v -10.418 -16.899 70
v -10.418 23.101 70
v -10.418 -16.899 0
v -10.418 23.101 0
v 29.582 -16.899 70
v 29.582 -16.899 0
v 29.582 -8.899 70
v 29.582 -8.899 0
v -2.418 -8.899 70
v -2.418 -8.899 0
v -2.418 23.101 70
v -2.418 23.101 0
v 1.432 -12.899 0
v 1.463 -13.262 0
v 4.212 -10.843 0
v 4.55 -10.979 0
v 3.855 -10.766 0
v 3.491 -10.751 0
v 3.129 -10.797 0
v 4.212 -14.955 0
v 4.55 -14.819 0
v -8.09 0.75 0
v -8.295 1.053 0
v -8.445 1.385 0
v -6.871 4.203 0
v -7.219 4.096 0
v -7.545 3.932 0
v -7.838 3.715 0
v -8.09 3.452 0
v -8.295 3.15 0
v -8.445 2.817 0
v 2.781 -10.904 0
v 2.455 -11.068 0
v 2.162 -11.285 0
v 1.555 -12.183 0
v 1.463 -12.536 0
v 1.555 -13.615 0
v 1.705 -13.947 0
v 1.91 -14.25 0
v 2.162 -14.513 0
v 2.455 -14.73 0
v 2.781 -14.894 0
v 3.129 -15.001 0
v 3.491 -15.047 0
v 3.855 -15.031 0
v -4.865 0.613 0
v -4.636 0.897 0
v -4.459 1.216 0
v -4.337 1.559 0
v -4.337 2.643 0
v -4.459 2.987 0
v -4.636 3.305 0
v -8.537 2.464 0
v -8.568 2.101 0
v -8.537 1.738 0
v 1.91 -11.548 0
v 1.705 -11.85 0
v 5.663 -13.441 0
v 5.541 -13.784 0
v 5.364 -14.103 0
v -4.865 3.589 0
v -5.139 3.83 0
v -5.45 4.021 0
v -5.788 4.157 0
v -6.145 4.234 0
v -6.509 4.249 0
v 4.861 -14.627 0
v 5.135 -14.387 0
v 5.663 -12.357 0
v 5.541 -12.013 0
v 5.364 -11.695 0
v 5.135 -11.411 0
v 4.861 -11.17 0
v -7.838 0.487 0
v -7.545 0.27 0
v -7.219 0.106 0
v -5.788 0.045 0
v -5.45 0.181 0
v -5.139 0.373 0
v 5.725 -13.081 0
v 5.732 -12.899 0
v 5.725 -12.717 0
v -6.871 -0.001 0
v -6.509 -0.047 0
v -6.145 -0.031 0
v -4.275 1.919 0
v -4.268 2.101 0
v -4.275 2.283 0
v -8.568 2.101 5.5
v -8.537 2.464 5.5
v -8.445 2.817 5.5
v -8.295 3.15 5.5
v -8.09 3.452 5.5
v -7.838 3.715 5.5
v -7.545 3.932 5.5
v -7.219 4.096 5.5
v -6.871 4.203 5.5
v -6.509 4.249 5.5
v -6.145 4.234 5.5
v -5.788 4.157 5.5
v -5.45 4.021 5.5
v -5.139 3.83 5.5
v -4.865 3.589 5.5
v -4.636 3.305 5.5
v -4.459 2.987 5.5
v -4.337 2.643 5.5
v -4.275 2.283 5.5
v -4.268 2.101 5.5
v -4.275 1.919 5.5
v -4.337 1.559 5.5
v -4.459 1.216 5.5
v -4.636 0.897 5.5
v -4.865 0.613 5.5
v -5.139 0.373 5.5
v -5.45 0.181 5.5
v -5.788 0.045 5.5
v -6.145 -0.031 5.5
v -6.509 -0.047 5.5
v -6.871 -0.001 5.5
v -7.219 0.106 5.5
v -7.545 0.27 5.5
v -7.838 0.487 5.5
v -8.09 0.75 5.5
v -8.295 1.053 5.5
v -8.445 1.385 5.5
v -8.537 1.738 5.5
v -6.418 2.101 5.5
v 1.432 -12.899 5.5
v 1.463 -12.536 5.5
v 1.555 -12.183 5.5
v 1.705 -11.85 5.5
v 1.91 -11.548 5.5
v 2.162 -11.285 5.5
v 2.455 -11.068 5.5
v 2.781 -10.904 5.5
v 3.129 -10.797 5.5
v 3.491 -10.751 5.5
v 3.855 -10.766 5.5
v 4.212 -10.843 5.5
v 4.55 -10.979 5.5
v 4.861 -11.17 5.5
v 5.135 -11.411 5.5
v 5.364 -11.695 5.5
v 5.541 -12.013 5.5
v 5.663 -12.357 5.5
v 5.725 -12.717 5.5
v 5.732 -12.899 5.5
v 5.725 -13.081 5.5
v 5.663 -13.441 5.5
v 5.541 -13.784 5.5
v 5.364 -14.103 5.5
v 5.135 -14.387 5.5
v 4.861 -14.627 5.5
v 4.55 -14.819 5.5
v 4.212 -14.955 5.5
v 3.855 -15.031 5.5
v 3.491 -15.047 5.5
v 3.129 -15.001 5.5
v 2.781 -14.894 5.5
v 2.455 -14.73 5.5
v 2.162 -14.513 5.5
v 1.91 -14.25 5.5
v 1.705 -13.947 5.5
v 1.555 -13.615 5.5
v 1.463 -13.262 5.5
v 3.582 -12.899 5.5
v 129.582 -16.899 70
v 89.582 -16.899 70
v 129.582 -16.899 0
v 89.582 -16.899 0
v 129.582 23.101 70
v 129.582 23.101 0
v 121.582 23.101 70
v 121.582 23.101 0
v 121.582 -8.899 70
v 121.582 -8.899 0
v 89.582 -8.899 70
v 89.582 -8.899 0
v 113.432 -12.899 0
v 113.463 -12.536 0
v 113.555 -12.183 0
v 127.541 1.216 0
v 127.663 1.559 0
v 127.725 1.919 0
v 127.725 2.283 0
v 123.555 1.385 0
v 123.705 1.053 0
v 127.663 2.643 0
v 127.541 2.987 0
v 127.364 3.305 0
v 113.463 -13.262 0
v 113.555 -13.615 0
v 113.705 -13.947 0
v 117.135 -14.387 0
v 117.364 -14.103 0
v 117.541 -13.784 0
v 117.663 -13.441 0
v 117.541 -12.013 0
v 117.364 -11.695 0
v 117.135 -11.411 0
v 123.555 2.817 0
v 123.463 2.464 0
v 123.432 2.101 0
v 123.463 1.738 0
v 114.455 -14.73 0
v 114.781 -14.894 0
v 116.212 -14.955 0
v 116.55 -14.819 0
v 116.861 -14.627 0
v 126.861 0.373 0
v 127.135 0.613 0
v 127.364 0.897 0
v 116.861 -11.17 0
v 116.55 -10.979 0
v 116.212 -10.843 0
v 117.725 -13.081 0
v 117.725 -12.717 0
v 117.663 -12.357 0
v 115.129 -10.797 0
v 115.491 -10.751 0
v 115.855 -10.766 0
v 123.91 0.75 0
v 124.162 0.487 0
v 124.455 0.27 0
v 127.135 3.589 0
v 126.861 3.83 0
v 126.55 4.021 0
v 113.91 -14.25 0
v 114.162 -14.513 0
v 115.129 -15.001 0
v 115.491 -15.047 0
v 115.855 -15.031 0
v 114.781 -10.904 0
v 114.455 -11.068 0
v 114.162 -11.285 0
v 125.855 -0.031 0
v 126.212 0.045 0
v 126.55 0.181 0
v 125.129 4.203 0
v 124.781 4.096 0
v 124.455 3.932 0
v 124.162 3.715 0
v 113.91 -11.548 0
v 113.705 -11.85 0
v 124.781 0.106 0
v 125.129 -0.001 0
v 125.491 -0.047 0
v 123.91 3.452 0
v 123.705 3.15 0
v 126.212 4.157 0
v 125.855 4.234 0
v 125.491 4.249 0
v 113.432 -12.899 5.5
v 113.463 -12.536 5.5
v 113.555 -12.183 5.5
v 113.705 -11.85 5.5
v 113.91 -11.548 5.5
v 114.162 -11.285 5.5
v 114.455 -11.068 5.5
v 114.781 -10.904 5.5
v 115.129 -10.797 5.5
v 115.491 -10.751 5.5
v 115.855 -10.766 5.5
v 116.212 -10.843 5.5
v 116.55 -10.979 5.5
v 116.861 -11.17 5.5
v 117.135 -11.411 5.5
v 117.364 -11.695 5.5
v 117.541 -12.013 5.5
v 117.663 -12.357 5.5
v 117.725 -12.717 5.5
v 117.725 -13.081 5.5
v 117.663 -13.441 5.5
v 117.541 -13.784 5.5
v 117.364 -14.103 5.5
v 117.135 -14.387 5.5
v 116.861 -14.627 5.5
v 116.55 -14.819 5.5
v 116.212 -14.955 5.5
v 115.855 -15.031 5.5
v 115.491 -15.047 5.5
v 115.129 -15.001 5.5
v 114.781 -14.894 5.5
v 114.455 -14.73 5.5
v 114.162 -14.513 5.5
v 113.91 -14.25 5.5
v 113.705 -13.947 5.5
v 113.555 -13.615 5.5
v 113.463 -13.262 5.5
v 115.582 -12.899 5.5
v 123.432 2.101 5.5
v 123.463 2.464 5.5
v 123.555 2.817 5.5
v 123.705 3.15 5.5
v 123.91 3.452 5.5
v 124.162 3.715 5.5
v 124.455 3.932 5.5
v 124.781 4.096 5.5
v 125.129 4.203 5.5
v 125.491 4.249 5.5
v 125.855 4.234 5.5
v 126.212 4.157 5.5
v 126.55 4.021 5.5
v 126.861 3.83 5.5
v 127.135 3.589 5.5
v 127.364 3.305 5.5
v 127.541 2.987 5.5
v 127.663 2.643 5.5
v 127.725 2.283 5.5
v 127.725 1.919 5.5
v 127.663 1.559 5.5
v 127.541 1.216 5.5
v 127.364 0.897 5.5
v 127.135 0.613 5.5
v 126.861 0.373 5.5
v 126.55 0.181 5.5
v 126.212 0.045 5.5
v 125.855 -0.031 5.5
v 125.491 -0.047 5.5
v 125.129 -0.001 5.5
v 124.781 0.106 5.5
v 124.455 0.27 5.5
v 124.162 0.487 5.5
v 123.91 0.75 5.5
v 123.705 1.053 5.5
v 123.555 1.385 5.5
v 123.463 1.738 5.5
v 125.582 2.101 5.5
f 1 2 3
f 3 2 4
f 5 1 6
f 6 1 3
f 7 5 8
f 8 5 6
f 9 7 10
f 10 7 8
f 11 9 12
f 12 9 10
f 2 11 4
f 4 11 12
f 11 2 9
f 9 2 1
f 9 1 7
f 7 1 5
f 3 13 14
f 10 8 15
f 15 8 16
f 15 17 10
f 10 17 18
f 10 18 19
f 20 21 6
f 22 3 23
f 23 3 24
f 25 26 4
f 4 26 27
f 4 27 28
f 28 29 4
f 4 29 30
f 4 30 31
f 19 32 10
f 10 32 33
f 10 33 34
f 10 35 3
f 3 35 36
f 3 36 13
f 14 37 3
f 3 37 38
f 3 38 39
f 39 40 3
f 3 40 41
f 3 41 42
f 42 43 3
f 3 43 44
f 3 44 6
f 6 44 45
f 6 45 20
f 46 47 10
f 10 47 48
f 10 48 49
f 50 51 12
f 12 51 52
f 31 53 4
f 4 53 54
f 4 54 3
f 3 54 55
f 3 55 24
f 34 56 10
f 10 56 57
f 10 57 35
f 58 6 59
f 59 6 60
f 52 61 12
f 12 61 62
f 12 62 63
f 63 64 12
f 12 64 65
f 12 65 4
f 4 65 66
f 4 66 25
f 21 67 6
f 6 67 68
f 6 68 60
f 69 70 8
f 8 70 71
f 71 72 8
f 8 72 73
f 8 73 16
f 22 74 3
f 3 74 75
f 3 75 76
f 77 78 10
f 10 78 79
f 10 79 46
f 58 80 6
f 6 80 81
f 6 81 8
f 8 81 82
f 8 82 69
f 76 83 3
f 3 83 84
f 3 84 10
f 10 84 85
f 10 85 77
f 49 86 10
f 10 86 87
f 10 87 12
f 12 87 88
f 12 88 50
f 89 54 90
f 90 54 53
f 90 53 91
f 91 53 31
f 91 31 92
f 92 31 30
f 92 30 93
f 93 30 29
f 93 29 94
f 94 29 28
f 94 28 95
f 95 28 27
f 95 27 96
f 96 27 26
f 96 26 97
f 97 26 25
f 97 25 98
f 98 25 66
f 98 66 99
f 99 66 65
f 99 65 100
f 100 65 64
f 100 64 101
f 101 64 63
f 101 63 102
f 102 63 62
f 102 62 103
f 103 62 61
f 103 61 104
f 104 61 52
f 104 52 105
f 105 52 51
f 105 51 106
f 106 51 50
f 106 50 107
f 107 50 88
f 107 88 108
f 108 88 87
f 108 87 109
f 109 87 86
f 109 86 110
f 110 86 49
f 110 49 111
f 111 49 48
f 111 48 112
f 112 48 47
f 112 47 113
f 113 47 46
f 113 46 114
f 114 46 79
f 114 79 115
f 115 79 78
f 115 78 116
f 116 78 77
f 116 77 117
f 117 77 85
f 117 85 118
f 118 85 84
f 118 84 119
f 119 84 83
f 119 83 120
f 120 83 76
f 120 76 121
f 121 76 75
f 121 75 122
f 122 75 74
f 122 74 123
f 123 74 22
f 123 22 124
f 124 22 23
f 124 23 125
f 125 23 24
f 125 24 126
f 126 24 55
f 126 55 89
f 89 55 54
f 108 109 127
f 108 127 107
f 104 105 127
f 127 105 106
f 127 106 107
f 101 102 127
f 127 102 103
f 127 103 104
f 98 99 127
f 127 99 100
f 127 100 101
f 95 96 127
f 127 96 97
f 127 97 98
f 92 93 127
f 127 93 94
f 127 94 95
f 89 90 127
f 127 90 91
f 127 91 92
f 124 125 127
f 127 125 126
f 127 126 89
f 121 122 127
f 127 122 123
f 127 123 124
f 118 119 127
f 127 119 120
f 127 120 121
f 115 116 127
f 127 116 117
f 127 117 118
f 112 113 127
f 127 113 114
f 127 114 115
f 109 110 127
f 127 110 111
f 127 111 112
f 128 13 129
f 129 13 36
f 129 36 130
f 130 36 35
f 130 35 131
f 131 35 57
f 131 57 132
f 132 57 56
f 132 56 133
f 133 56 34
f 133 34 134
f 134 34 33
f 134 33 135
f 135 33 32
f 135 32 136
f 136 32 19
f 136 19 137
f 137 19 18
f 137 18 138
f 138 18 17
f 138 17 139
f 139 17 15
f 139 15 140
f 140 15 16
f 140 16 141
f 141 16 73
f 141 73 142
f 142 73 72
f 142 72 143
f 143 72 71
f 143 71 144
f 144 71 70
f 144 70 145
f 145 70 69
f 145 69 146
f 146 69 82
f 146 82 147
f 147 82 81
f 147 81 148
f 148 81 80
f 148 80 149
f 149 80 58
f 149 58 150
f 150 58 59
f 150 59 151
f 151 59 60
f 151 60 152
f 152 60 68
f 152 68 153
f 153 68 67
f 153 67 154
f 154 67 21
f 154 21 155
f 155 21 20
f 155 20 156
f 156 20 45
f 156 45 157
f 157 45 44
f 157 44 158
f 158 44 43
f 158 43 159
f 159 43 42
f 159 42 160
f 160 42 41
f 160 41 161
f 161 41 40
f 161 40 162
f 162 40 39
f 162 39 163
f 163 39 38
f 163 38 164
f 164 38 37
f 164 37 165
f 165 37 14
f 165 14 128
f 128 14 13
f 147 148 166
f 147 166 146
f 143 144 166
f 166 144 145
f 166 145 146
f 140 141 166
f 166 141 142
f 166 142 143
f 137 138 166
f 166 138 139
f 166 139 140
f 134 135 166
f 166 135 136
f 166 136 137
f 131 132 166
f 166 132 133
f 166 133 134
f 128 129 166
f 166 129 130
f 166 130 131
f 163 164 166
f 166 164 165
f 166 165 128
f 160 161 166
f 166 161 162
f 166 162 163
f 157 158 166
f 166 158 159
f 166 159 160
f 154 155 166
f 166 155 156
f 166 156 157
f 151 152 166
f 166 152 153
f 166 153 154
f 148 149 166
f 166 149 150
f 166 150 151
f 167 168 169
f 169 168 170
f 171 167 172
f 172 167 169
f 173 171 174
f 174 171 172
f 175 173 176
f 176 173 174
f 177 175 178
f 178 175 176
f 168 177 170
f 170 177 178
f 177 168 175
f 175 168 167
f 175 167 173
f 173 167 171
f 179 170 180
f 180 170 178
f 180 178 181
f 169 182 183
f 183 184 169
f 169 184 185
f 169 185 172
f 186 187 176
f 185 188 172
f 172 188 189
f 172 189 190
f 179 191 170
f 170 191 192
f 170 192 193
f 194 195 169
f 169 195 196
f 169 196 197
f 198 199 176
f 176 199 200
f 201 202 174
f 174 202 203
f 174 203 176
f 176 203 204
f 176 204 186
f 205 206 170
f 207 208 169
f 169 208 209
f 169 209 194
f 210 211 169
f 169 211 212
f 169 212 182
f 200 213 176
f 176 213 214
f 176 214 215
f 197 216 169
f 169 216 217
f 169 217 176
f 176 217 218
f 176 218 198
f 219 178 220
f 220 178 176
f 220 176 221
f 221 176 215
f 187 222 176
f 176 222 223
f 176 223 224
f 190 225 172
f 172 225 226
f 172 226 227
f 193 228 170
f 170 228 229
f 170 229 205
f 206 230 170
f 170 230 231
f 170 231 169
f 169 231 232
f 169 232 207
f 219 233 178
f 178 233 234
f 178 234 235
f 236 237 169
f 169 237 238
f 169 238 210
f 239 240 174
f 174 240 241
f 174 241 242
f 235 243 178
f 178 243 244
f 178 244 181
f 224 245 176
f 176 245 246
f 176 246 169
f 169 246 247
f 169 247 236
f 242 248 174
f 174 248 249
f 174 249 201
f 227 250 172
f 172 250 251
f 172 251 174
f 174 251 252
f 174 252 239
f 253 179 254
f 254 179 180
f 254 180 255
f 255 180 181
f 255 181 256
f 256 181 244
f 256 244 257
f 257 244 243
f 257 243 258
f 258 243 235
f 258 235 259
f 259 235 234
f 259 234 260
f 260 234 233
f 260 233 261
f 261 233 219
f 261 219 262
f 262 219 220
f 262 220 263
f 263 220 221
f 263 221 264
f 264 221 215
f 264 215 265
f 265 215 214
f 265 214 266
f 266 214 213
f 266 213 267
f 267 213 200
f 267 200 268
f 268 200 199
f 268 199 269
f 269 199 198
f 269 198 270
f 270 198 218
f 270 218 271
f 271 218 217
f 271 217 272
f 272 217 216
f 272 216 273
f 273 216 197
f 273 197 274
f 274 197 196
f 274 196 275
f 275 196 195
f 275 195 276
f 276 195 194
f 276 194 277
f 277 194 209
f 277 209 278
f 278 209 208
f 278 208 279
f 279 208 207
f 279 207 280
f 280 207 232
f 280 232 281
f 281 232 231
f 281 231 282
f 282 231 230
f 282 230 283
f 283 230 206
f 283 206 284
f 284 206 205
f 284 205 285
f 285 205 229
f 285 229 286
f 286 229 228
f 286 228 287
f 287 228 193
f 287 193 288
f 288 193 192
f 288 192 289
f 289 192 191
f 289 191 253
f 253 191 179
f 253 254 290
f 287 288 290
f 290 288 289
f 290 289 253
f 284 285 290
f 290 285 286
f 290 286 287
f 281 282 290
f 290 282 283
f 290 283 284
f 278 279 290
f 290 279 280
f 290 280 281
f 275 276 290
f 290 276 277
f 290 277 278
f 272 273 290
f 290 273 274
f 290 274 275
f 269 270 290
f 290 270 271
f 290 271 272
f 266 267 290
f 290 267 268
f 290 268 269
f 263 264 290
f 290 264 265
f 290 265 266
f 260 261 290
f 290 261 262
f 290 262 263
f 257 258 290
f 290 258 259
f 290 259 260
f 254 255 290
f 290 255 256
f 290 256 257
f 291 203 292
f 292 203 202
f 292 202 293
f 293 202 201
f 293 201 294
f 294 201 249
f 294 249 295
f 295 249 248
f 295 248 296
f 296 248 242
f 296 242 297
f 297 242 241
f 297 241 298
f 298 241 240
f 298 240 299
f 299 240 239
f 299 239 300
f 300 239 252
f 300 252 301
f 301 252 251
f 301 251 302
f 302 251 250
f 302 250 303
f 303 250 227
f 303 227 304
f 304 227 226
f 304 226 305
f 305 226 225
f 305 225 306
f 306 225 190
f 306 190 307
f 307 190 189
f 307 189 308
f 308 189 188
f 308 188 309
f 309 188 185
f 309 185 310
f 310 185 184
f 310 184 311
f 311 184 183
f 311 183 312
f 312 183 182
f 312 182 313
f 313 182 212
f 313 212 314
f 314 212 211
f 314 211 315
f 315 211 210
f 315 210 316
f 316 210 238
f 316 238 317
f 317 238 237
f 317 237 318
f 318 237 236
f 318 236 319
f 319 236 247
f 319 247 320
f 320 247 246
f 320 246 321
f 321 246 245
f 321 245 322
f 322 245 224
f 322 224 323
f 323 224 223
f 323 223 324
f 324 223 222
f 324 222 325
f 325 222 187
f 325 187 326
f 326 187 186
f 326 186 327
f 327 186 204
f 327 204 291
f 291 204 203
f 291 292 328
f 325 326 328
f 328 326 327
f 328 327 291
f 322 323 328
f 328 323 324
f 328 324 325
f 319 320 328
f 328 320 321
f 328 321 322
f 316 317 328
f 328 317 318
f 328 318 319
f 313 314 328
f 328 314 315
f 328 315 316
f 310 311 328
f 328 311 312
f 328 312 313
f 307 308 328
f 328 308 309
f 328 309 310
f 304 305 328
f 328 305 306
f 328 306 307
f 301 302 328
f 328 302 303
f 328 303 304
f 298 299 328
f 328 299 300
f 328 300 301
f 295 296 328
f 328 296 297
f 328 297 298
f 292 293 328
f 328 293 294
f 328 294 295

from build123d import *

# Parameters (mm, degrees)
EXTRUDE_1_DEPTH     = 70
EXTRUDE_1_2_DEPTH   = 70
SKETCH_2_R          = 2.15
CUT_EXTRUDE_1_DEPTH = 5.5


with BuildPart() as part:
    # 草图1 → 凸台-拉伸1 (new body)
    with BuildSketch(Plane.XY):
        Polygon((-10.417681783, 23.1011135), (-2.417681783, 23.1011135), (-2.417681783, -8.8988865), (29.582318217, -8.8988865), (29.582318217, -16.8988865), (-10.417681783, -16.8988865), align=None)
    extrude(amount=EXTRUDE_1_DEPTH)


with BuildPart() as body_2:
    # 草图1 → Extrude 1 2 (new body)
    with BuildSketch(Plane.XY):
        Polygon((129.582318217, -16.8988865), (129.582318217, 23.1011135), (121.582318217, 23.1011135), (121.582318217, -8.8988865), (89.582318217, -8.8988865), (89.582318217, -16.8988865), align=None)
    extrude(amount=EXTRUDE_1_2_DEPTH)


with BuildPart() as cut_extrude_1_tool:
    # 草图2 → 切除-拉伸1 (new body)
    with BuildSketch(Plane(origin=(0, 0, 0), x_dir=(-1, 0, 0), z_dir=(0, 0, -1))):
        with Locations((-125.582318217, 2.1011135)):
            Circle(SKETCH_2_R)
        with Locations((-115.582318217, -12.8988865)):
            Circle(SKETCH_2_R)
        with Locations((-3.582318217, -12.8988865)):
            Circle(SKETCH_2_R)
        with Locations((6.417681783, 2.1011135)):
            Circle(SKETCH_2_R)
    extrude(amount=-CUT_EXTRUDE_1_DEPTH)


with BuildPart() as part_1:
    add(part.part)

    # 切除-拉伸1: cut by cut_extrude_1_tool
    add(cut_extrude_1_tool.part, mode=Mode.SUBTRACT)


with BuildPart() as body_2_1:
    add(body_2.part)

    # 切除-拉伸1: cut by cut_extrude_1_tool
    add(cut_extrude_1_tool.part, mode=Mode.SUBTRACT)


solid = Compound([part_1.part, body_2_1.part])
